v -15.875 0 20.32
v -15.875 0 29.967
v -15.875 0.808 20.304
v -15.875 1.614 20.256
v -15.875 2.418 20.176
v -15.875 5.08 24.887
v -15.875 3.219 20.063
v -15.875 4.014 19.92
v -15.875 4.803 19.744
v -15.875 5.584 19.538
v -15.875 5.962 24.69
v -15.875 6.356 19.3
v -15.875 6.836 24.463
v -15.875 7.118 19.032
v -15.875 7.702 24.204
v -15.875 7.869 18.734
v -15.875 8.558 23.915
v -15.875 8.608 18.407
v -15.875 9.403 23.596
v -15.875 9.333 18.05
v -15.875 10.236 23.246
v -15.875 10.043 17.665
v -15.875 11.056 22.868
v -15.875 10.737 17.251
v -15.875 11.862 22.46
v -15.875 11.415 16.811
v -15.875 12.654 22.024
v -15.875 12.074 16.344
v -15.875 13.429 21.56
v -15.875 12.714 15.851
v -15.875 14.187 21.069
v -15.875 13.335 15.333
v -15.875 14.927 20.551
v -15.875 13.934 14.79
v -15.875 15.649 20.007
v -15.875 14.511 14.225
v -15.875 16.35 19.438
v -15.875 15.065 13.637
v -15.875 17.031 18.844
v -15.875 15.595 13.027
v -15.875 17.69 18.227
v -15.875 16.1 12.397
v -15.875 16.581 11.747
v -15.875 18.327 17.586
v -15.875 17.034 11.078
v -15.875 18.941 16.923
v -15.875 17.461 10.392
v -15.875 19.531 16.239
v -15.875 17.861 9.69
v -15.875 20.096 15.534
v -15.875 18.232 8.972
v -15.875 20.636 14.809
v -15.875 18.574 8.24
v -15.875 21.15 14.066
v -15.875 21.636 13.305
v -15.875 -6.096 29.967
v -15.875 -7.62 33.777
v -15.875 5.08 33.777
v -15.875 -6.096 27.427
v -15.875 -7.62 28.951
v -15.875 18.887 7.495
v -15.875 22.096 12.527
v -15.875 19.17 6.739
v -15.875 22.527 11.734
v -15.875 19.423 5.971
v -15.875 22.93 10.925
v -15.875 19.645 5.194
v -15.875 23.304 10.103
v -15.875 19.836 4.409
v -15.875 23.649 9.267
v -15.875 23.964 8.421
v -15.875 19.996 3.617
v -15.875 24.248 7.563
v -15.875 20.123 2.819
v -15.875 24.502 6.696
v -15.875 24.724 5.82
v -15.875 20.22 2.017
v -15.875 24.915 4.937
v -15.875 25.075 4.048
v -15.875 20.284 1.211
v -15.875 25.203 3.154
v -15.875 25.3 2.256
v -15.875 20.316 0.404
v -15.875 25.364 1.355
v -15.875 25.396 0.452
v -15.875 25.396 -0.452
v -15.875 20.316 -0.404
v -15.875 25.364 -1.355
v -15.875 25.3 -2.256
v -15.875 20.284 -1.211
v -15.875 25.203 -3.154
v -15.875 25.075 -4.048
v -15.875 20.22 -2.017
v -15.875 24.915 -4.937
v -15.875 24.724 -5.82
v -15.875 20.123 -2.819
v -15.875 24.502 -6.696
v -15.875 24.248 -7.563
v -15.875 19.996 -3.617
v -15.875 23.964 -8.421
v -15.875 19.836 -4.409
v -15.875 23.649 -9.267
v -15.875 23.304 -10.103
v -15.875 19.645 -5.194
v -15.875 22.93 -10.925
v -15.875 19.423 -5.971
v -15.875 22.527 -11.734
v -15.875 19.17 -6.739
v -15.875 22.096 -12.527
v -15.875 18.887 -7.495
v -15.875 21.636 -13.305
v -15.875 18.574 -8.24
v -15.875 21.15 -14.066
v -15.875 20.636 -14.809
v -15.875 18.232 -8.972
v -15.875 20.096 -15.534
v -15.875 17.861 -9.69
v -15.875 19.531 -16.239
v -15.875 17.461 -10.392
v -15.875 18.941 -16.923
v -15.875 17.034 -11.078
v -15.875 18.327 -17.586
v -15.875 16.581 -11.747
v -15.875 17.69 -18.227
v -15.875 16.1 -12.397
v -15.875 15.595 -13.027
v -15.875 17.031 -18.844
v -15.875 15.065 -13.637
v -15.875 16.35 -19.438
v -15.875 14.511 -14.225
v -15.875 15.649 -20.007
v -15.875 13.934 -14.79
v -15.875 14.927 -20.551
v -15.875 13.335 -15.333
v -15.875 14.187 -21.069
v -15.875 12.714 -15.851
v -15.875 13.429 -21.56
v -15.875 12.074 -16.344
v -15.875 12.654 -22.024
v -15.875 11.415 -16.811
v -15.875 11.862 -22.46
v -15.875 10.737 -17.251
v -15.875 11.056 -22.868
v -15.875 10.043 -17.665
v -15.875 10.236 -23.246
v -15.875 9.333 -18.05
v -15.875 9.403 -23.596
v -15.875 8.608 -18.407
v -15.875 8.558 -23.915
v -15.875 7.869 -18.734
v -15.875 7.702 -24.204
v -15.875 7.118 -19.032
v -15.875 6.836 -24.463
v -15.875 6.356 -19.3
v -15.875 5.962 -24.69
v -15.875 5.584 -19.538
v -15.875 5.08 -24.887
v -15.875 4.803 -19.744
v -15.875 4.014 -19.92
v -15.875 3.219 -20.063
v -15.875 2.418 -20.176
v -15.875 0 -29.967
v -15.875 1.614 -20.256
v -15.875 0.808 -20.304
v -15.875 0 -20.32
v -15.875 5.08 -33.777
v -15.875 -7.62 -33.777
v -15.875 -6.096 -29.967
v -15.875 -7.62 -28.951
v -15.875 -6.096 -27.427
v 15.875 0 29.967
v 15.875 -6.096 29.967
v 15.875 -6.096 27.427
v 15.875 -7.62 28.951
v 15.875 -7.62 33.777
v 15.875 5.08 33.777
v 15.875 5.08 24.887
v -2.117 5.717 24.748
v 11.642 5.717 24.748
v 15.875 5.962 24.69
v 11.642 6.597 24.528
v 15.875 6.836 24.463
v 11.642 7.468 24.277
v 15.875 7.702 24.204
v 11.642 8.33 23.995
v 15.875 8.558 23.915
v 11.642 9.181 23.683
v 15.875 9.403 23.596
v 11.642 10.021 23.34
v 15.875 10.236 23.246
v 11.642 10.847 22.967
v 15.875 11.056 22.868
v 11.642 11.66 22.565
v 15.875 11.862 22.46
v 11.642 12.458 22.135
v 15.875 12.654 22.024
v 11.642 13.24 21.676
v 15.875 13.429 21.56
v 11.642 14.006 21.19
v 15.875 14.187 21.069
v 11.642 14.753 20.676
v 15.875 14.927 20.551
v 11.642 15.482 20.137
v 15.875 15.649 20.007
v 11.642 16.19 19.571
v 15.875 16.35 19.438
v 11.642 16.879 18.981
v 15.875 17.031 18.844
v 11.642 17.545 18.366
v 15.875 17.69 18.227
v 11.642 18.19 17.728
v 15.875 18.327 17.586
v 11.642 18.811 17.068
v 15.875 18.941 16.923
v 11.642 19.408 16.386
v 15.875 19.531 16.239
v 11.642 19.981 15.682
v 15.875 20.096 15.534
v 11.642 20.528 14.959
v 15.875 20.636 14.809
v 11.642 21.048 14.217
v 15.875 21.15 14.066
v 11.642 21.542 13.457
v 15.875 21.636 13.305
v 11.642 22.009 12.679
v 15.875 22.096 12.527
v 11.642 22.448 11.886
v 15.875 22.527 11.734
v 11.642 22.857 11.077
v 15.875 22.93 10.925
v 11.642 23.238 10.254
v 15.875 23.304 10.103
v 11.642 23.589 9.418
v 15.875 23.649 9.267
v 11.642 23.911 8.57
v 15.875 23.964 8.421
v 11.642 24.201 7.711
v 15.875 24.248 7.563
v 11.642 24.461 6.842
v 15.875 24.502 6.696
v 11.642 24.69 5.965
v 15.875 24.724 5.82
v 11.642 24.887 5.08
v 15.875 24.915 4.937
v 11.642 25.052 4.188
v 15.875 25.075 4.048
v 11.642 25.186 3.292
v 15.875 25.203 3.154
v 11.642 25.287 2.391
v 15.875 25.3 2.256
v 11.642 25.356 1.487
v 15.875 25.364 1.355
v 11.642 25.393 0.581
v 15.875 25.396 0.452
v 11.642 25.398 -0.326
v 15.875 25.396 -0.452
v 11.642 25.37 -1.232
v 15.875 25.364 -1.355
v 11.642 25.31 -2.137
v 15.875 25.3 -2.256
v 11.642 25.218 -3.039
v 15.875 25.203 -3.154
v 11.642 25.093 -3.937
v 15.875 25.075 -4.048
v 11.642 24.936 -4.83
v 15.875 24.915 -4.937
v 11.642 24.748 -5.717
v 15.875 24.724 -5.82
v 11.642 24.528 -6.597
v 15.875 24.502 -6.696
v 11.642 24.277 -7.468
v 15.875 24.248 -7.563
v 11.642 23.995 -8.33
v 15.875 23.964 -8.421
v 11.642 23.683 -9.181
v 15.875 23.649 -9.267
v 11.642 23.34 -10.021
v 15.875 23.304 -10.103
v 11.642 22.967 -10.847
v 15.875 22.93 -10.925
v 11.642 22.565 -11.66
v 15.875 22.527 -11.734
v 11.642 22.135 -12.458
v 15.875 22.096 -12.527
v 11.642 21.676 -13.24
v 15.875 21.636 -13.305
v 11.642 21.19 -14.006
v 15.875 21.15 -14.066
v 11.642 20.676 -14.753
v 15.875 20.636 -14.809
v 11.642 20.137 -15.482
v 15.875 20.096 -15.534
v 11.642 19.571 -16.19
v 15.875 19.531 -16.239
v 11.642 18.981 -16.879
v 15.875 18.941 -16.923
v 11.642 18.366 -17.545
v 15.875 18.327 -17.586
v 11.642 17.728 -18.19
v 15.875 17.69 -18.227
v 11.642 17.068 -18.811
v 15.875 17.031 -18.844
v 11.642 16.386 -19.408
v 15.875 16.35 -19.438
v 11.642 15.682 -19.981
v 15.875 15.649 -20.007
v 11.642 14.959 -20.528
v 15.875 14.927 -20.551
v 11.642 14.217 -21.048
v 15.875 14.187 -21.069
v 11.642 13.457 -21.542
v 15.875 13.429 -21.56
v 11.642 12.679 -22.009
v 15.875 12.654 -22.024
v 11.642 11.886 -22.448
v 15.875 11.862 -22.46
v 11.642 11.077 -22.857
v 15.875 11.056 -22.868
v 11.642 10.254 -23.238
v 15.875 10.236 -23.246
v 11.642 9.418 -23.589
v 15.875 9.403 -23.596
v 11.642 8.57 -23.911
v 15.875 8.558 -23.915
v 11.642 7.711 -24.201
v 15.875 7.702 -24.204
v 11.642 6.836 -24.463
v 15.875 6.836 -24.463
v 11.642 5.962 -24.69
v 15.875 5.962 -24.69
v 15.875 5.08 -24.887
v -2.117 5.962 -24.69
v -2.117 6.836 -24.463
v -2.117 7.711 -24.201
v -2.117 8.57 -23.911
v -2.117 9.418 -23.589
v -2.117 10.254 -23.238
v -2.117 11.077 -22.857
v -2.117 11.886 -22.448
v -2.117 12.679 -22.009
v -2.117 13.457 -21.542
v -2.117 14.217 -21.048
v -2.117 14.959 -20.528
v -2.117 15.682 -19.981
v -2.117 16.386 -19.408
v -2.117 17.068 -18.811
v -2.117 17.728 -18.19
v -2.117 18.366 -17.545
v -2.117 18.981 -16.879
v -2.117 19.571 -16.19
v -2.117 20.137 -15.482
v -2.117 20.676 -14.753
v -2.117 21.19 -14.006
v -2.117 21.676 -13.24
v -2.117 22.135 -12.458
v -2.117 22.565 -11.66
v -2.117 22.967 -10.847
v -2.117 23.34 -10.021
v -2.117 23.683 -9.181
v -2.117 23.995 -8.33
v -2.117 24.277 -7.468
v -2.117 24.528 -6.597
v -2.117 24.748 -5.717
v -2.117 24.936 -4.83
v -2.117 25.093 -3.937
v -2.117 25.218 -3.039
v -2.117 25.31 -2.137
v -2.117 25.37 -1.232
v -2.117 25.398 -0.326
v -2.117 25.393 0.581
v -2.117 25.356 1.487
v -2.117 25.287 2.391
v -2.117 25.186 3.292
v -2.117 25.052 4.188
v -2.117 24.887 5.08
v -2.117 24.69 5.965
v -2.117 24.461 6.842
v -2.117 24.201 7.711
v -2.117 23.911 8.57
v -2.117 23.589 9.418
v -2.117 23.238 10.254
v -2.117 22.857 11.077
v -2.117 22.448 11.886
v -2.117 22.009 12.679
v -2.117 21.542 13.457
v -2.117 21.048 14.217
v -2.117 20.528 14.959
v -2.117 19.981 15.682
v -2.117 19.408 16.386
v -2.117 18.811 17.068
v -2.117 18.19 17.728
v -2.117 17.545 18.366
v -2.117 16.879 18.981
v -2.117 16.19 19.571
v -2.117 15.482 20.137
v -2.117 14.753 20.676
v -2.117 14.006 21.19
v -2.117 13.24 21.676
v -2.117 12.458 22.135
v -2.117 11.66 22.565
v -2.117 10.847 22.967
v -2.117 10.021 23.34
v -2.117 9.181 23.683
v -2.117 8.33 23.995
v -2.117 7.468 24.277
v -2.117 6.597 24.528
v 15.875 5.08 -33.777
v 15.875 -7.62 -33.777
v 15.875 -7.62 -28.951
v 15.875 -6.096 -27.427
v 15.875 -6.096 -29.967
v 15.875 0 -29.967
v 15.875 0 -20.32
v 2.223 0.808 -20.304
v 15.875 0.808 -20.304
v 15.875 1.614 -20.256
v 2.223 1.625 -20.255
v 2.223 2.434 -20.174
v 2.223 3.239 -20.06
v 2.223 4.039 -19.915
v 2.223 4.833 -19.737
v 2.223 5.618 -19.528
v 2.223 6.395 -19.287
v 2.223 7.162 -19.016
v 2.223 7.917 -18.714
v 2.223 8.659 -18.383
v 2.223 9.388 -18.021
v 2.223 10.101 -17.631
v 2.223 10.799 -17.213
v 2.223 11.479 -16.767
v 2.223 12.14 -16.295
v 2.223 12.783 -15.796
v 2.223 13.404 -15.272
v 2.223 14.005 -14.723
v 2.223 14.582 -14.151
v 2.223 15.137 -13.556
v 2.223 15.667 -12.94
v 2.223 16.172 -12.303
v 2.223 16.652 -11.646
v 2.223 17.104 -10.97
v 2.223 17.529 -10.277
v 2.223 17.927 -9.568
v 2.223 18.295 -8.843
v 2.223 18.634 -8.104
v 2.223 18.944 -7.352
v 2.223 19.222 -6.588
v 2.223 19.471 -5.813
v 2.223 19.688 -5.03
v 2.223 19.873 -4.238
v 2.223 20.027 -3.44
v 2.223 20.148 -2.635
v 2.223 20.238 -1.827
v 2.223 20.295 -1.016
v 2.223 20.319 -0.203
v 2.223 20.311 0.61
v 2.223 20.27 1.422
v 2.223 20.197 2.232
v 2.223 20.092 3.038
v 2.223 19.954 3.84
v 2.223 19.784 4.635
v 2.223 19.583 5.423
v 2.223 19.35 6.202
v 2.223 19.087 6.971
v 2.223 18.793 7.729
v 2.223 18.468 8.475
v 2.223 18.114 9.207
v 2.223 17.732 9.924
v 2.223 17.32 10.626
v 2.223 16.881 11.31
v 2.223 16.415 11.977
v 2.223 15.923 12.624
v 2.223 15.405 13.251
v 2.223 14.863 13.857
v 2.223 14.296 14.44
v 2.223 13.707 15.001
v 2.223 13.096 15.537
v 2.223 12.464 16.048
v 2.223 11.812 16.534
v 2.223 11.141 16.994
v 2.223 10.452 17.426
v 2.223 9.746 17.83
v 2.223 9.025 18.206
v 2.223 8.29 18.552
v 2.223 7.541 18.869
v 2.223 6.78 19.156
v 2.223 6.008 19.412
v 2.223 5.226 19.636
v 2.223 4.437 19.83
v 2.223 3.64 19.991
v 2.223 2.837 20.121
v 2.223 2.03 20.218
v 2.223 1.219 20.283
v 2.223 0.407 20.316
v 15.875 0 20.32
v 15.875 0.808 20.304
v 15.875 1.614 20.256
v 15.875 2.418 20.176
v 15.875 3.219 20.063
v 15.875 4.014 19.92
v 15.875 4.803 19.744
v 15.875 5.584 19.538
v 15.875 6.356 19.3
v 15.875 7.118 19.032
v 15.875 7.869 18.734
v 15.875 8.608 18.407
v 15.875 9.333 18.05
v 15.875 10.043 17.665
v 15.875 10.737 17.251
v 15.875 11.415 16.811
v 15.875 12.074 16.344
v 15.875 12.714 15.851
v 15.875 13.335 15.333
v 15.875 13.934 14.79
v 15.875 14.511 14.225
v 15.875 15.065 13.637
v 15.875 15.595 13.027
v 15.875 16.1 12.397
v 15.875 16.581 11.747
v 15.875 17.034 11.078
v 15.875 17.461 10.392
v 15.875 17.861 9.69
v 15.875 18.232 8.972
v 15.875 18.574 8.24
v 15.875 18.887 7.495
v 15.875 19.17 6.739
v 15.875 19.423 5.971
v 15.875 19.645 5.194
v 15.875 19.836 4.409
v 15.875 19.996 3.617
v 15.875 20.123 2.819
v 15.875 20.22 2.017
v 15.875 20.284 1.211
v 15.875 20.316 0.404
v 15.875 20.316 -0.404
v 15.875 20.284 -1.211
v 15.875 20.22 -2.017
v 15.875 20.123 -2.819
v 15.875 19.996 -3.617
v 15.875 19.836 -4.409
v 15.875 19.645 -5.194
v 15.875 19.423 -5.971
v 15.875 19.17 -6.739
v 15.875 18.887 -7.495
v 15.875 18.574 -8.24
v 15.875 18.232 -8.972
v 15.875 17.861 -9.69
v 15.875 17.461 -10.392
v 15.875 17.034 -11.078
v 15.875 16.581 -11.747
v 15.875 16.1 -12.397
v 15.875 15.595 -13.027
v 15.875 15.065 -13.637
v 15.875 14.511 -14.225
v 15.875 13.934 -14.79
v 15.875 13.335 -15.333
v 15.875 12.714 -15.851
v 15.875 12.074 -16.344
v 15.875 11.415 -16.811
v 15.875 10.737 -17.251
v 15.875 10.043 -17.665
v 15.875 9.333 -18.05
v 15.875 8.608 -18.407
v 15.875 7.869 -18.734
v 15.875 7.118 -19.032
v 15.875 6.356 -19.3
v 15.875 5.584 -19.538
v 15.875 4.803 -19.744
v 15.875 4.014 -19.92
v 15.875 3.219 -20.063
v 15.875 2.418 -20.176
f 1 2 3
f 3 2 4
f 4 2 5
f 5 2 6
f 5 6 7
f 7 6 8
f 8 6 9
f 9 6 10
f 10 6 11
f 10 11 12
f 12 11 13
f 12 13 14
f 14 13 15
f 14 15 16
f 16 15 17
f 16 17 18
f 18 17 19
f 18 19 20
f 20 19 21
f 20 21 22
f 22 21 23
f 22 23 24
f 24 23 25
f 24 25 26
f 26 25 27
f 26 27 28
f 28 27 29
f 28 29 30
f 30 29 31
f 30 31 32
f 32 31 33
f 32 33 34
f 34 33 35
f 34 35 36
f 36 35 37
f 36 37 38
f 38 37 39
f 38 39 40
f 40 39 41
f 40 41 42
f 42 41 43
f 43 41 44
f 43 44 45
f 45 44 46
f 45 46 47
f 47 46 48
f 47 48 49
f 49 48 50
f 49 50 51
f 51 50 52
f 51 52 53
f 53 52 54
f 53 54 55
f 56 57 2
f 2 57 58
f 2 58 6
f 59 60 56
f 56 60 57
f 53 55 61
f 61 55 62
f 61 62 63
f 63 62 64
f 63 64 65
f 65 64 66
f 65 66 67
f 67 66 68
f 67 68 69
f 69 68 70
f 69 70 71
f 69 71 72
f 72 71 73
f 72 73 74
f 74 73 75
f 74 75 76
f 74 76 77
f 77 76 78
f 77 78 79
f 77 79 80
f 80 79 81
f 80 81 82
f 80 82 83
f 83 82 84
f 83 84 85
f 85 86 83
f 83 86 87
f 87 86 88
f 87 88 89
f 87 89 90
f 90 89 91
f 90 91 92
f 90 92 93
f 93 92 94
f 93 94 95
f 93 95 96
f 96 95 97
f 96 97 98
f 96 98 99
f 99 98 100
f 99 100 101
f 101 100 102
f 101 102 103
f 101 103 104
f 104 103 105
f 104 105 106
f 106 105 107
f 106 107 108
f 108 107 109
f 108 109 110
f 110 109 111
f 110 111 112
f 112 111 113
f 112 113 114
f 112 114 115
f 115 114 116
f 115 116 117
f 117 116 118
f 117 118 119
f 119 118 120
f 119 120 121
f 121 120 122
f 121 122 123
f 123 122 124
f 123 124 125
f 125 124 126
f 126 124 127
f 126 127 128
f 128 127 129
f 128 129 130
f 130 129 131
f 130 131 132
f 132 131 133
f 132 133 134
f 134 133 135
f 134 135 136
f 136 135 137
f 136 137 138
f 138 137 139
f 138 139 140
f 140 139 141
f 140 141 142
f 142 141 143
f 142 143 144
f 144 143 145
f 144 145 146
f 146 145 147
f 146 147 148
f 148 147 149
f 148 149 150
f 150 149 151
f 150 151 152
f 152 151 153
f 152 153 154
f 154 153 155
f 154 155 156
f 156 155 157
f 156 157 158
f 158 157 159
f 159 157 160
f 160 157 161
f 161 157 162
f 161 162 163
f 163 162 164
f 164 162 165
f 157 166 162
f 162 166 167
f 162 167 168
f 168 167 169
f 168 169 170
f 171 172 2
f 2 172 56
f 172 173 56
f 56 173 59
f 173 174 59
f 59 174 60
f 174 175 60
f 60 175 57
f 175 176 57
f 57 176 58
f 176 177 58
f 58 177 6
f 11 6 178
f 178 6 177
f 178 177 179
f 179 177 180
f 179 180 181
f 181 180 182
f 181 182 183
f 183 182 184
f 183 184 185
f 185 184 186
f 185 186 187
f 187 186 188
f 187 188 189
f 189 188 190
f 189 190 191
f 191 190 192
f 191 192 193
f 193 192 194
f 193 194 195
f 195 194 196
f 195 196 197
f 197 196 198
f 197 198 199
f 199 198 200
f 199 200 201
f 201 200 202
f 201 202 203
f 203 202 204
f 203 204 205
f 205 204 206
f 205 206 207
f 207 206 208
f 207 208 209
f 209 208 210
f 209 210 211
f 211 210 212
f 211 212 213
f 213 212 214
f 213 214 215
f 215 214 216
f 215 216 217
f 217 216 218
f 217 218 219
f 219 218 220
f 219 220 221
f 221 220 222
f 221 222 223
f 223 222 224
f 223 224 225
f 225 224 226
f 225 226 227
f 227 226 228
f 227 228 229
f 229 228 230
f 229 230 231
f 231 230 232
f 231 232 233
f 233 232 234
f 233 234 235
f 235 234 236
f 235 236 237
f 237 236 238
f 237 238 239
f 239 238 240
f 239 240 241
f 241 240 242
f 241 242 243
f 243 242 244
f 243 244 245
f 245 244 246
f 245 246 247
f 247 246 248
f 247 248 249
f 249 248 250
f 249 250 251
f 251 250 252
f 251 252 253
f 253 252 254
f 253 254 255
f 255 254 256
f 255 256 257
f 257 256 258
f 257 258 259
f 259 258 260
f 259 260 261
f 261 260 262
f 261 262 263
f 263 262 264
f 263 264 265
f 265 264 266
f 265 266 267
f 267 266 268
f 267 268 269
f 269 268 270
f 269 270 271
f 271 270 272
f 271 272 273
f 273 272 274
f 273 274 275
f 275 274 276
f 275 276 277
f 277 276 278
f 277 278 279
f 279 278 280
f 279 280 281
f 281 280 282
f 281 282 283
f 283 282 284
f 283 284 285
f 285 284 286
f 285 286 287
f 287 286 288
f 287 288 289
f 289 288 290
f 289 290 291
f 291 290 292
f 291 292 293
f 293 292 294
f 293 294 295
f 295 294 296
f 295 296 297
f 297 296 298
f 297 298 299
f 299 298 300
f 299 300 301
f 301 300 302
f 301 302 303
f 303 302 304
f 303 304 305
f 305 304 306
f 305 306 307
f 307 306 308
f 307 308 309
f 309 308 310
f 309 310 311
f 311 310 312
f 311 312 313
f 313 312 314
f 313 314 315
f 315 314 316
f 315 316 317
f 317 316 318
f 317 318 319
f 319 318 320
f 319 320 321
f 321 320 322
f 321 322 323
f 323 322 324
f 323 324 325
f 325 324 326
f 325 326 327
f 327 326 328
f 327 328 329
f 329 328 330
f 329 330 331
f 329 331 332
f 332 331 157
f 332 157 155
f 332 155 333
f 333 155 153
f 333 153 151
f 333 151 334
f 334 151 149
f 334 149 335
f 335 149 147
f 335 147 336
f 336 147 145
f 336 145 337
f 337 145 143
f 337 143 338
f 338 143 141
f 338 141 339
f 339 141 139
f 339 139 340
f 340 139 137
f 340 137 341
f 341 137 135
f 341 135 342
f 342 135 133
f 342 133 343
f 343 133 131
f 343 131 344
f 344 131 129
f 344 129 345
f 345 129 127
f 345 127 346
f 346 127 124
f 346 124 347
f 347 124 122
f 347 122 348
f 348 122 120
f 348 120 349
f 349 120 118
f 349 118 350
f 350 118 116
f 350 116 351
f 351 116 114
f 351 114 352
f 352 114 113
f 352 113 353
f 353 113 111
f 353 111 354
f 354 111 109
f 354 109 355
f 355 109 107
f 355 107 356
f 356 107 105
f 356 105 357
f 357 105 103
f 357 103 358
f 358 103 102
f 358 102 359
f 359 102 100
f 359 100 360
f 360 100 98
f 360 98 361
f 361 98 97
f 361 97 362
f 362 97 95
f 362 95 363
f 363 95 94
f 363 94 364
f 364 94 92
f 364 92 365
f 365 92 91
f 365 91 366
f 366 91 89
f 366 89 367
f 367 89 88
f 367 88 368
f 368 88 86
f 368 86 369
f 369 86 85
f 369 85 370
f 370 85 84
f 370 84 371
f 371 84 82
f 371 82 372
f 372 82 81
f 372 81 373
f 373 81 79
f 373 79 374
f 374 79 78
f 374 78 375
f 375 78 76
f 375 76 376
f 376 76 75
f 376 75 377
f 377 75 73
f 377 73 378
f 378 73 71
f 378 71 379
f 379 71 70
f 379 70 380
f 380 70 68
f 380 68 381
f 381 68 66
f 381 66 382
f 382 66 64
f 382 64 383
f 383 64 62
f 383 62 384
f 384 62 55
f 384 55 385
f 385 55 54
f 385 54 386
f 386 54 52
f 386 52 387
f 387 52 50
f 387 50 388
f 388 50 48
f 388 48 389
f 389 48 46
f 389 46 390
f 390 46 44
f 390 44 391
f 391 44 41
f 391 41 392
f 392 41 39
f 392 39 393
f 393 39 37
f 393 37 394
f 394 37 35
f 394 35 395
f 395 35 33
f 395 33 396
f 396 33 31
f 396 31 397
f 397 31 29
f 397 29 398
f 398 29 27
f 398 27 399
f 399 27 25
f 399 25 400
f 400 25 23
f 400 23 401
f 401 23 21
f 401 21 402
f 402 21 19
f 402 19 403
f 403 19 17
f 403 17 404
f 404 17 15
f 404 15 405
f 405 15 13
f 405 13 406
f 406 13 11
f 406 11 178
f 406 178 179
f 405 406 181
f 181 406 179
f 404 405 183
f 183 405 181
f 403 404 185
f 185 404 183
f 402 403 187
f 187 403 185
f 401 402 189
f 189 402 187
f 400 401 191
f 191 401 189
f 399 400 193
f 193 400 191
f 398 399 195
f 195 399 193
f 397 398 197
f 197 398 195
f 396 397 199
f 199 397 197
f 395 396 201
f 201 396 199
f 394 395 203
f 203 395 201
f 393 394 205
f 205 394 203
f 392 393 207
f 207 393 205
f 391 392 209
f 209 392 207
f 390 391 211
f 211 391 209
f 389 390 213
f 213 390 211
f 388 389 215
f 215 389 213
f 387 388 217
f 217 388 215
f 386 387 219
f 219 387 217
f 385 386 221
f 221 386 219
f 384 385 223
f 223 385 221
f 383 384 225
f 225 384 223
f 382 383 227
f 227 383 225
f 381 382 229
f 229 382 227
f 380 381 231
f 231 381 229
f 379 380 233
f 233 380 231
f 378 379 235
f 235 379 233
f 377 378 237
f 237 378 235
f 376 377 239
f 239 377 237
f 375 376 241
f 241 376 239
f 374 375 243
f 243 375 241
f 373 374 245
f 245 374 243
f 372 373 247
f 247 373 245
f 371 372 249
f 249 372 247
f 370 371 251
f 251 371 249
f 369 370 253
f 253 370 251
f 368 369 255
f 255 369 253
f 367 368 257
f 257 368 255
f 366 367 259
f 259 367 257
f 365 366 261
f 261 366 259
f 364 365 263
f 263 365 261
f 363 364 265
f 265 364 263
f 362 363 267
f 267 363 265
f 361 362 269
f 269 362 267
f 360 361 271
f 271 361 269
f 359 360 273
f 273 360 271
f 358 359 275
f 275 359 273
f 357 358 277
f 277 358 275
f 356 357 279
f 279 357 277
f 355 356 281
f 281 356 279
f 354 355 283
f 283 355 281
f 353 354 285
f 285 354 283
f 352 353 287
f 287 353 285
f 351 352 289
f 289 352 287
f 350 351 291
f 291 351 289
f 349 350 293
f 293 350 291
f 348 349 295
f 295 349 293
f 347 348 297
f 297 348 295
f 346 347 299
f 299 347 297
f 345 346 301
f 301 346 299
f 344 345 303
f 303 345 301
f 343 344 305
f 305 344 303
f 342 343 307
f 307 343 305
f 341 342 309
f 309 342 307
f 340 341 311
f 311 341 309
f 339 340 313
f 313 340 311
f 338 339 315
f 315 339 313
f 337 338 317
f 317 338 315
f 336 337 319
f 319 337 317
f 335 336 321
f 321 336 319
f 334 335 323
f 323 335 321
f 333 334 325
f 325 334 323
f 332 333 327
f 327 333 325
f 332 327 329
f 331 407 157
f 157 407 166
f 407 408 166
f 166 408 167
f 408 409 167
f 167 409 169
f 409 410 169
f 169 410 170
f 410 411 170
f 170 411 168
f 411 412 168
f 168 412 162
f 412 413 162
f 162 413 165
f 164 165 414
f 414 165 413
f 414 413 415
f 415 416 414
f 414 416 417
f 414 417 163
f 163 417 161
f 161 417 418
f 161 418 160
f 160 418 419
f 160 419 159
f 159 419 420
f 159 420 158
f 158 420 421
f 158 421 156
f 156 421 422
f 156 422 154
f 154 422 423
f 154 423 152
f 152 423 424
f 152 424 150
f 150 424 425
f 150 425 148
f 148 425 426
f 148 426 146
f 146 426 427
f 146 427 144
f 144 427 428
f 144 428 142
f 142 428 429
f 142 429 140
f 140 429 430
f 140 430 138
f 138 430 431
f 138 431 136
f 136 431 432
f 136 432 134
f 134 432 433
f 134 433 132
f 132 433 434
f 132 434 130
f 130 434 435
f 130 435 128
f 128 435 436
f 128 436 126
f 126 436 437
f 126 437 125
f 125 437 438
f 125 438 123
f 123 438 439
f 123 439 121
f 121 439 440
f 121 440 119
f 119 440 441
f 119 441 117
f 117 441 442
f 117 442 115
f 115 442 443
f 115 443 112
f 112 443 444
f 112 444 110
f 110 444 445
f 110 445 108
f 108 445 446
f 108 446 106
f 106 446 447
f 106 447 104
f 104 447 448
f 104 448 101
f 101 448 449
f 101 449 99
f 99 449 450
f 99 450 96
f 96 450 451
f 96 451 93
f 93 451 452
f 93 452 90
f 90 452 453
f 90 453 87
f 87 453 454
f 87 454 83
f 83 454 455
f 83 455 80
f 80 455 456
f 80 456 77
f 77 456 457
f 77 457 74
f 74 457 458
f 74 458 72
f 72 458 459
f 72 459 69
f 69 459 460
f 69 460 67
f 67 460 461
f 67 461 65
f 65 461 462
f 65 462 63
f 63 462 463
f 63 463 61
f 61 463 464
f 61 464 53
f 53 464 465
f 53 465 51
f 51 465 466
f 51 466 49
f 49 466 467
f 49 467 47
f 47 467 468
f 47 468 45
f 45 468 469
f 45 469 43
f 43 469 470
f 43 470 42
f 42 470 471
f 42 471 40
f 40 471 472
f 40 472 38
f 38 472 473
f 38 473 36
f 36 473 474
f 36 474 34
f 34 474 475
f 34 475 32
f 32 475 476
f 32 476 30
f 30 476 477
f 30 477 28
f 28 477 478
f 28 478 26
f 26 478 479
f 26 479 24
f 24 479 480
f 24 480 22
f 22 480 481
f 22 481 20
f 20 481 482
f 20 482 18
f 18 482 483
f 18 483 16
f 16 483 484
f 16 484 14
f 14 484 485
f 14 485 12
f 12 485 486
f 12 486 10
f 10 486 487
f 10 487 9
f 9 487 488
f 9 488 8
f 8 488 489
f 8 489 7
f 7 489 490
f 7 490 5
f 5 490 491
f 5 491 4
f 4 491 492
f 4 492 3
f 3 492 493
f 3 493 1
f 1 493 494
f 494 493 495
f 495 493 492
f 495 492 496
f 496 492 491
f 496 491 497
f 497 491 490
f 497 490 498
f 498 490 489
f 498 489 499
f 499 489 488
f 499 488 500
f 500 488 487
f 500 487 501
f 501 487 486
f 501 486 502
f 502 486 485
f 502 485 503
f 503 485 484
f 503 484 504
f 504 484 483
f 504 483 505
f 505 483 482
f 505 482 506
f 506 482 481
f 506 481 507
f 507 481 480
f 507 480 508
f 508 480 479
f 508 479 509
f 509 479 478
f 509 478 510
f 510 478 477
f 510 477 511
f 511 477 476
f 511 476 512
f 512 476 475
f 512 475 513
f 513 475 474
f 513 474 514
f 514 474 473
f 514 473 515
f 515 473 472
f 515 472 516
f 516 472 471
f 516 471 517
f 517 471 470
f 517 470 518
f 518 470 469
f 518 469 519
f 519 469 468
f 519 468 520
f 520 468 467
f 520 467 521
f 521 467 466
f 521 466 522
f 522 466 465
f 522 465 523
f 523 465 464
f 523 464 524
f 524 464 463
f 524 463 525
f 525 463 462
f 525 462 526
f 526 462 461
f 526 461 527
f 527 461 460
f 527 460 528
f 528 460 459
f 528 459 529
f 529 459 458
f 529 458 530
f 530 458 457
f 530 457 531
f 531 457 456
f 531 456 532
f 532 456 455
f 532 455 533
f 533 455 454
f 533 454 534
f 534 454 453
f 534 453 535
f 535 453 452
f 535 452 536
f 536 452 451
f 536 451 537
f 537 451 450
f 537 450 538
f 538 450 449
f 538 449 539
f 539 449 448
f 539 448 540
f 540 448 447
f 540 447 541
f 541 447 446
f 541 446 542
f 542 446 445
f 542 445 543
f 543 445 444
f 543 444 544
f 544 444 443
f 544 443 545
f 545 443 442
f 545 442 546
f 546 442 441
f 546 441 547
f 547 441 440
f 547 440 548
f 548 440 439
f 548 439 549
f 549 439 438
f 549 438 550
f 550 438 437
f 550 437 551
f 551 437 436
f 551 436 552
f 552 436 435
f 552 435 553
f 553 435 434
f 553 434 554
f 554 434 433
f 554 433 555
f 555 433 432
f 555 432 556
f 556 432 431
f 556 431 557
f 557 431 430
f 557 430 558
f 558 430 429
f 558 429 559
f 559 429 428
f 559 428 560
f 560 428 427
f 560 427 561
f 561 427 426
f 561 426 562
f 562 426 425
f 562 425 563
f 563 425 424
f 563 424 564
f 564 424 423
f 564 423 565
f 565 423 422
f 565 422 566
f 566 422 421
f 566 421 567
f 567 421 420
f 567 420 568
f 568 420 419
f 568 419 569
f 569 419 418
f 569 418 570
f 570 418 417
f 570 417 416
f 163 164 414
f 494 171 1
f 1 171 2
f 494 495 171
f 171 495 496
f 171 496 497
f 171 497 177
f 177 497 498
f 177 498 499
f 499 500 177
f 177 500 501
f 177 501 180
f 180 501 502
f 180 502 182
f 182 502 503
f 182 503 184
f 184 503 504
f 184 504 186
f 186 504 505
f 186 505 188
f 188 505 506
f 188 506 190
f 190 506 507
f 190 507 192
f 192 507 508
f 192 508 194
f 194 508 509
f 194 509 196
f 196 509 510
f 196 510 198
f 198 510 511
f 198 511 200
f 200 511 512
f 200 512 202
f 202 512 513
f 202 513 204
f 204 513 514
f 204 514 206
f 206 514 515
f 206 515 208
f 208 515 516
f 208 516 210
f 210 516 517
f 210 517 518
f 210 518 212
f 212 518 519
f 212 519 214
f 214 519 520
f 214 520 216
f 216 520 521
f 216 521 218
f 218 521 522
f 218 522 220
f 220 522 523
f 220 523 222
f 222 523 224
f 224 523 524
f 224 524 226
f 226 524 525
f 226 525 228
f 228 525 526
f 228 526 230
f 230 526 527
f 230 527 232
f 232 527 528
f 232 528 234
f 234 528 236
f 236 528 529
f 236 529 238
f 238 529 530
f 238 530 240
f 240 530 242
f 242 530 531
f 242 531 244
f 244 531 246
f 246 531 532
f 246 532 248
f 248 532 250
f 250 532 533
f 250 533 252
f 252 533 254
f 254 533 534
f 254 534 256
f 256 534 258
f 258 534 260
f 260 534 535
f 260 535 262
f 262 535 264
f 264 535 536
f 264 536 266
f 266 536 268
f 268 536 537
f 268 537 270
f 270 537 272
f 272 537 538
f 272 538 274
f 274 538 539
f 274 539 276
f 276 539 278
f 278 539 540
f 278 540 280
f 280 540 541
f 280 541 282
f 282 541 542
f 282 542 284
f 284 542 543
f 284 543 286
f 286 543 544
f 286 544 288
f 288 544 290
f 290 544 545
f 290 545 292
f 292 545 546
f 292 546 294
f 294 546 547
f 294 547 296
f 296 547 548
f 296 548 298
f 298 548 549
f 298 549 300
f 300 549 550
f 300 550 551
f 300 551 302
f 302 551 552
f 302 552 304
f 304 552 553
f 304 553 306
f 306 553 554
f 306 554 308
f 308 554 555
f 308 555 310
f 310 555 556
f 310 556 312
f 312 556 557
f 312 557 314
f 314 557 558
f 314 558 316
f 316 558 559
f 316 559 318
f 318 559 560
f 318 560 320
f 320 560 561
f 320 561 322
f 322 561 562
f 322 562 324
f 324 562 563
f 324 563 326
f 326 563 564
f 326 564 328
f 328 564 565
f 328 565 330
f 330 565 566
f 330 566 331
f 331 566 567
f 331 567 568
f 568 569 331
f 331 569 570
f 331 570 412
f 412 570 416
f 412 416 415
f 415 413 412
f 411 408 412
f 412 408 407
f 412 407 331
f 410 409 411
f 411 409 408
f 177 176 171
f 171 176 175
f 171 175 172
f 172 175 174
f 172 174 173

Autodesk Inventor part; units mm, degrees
ref_plane "YZ Plane" through (0, 0, 0) normal (1, 0, 0) x (0, 1, 0)
ref_plane "XZ Plane" through (0, 0, 0) normal (0, 1, 0) x (-1, 0, 0)
ref_plane "XY Plane" through (0, 0, 0) normal (0, 0, 1) x (1, 0, 0)
sketch "Sketch1" plane through (0, 0, 0) normal (1, 0, 0) x (0, 1, 0)
  arc A0 (0, -20.32) -> (0, 20.32) centre (0, 0) ccw
  arc A1 (5.08, -24.8868) -> (5.08, 24.8868) centre (0, 0) ccw
  line L0 (0, 25.6032) -> (0, 20.32)
  line L1 (0, -20.32) -> (0, -25.4)
  line L2 (0, 25.6032) -> (0, 29.9668)
  line L3 (0, 29.9668) -> (-6.096, 29.9668)
  line L4 (-6.096, 29.9668) -> (-6.096, 27.4268)
  line L5 (-6.096, 27.4268) -> (-7.62, 28.9508)
  line L6 (-6.096, 27.4268) -> (-3.9407, 27.4268) construction
  line L7 (5.08, 24.8868) -> (5.08, 33.7768)
  line L8 (5.08, 33.7768) -> (-7.62, 33.7768)
  line L9 (-7.62, 33.7768) -> (-7.62, 28.9508)
  line L10 (10.0375, 0) -> (16.2196, 0) construction
  line L11 (0, -25.4) -> (0, -29.9668)
  line L12 (0, -29.9668) -> (-6.096, -29.9668)
  line L13 (-6.096, -29.9668) -> (-6.096, -27.4268)
  line L14 (-6.096, -27.4268) -> (-7.62, -28.9508)
  line L15 (5.08, -24.8868) -> (5.08, -33.7768)
  line L16 (5.08, -33.7768) -> (-7.62, -33.7768)
  line L17 (-7.62, -33.7768) -> (-7.62, -28.9508)
  dimension "d0" = 40.64
  dimension "d1" = 50.8
  dimension "d3" = 6.096
  dimension "d4" = 2.54
  dimension "d5" = 135
  dimension "d6" = 5.08
  dimension "d7" = 0
  dimension "d8" = 8.89
  dimension "d9" = 12.7
  dimension "d12" = 5.08
extrude "Extrusion1" add sketch "Sketch1" along normal mid plane 31.75
properties part number "PistonClip"
